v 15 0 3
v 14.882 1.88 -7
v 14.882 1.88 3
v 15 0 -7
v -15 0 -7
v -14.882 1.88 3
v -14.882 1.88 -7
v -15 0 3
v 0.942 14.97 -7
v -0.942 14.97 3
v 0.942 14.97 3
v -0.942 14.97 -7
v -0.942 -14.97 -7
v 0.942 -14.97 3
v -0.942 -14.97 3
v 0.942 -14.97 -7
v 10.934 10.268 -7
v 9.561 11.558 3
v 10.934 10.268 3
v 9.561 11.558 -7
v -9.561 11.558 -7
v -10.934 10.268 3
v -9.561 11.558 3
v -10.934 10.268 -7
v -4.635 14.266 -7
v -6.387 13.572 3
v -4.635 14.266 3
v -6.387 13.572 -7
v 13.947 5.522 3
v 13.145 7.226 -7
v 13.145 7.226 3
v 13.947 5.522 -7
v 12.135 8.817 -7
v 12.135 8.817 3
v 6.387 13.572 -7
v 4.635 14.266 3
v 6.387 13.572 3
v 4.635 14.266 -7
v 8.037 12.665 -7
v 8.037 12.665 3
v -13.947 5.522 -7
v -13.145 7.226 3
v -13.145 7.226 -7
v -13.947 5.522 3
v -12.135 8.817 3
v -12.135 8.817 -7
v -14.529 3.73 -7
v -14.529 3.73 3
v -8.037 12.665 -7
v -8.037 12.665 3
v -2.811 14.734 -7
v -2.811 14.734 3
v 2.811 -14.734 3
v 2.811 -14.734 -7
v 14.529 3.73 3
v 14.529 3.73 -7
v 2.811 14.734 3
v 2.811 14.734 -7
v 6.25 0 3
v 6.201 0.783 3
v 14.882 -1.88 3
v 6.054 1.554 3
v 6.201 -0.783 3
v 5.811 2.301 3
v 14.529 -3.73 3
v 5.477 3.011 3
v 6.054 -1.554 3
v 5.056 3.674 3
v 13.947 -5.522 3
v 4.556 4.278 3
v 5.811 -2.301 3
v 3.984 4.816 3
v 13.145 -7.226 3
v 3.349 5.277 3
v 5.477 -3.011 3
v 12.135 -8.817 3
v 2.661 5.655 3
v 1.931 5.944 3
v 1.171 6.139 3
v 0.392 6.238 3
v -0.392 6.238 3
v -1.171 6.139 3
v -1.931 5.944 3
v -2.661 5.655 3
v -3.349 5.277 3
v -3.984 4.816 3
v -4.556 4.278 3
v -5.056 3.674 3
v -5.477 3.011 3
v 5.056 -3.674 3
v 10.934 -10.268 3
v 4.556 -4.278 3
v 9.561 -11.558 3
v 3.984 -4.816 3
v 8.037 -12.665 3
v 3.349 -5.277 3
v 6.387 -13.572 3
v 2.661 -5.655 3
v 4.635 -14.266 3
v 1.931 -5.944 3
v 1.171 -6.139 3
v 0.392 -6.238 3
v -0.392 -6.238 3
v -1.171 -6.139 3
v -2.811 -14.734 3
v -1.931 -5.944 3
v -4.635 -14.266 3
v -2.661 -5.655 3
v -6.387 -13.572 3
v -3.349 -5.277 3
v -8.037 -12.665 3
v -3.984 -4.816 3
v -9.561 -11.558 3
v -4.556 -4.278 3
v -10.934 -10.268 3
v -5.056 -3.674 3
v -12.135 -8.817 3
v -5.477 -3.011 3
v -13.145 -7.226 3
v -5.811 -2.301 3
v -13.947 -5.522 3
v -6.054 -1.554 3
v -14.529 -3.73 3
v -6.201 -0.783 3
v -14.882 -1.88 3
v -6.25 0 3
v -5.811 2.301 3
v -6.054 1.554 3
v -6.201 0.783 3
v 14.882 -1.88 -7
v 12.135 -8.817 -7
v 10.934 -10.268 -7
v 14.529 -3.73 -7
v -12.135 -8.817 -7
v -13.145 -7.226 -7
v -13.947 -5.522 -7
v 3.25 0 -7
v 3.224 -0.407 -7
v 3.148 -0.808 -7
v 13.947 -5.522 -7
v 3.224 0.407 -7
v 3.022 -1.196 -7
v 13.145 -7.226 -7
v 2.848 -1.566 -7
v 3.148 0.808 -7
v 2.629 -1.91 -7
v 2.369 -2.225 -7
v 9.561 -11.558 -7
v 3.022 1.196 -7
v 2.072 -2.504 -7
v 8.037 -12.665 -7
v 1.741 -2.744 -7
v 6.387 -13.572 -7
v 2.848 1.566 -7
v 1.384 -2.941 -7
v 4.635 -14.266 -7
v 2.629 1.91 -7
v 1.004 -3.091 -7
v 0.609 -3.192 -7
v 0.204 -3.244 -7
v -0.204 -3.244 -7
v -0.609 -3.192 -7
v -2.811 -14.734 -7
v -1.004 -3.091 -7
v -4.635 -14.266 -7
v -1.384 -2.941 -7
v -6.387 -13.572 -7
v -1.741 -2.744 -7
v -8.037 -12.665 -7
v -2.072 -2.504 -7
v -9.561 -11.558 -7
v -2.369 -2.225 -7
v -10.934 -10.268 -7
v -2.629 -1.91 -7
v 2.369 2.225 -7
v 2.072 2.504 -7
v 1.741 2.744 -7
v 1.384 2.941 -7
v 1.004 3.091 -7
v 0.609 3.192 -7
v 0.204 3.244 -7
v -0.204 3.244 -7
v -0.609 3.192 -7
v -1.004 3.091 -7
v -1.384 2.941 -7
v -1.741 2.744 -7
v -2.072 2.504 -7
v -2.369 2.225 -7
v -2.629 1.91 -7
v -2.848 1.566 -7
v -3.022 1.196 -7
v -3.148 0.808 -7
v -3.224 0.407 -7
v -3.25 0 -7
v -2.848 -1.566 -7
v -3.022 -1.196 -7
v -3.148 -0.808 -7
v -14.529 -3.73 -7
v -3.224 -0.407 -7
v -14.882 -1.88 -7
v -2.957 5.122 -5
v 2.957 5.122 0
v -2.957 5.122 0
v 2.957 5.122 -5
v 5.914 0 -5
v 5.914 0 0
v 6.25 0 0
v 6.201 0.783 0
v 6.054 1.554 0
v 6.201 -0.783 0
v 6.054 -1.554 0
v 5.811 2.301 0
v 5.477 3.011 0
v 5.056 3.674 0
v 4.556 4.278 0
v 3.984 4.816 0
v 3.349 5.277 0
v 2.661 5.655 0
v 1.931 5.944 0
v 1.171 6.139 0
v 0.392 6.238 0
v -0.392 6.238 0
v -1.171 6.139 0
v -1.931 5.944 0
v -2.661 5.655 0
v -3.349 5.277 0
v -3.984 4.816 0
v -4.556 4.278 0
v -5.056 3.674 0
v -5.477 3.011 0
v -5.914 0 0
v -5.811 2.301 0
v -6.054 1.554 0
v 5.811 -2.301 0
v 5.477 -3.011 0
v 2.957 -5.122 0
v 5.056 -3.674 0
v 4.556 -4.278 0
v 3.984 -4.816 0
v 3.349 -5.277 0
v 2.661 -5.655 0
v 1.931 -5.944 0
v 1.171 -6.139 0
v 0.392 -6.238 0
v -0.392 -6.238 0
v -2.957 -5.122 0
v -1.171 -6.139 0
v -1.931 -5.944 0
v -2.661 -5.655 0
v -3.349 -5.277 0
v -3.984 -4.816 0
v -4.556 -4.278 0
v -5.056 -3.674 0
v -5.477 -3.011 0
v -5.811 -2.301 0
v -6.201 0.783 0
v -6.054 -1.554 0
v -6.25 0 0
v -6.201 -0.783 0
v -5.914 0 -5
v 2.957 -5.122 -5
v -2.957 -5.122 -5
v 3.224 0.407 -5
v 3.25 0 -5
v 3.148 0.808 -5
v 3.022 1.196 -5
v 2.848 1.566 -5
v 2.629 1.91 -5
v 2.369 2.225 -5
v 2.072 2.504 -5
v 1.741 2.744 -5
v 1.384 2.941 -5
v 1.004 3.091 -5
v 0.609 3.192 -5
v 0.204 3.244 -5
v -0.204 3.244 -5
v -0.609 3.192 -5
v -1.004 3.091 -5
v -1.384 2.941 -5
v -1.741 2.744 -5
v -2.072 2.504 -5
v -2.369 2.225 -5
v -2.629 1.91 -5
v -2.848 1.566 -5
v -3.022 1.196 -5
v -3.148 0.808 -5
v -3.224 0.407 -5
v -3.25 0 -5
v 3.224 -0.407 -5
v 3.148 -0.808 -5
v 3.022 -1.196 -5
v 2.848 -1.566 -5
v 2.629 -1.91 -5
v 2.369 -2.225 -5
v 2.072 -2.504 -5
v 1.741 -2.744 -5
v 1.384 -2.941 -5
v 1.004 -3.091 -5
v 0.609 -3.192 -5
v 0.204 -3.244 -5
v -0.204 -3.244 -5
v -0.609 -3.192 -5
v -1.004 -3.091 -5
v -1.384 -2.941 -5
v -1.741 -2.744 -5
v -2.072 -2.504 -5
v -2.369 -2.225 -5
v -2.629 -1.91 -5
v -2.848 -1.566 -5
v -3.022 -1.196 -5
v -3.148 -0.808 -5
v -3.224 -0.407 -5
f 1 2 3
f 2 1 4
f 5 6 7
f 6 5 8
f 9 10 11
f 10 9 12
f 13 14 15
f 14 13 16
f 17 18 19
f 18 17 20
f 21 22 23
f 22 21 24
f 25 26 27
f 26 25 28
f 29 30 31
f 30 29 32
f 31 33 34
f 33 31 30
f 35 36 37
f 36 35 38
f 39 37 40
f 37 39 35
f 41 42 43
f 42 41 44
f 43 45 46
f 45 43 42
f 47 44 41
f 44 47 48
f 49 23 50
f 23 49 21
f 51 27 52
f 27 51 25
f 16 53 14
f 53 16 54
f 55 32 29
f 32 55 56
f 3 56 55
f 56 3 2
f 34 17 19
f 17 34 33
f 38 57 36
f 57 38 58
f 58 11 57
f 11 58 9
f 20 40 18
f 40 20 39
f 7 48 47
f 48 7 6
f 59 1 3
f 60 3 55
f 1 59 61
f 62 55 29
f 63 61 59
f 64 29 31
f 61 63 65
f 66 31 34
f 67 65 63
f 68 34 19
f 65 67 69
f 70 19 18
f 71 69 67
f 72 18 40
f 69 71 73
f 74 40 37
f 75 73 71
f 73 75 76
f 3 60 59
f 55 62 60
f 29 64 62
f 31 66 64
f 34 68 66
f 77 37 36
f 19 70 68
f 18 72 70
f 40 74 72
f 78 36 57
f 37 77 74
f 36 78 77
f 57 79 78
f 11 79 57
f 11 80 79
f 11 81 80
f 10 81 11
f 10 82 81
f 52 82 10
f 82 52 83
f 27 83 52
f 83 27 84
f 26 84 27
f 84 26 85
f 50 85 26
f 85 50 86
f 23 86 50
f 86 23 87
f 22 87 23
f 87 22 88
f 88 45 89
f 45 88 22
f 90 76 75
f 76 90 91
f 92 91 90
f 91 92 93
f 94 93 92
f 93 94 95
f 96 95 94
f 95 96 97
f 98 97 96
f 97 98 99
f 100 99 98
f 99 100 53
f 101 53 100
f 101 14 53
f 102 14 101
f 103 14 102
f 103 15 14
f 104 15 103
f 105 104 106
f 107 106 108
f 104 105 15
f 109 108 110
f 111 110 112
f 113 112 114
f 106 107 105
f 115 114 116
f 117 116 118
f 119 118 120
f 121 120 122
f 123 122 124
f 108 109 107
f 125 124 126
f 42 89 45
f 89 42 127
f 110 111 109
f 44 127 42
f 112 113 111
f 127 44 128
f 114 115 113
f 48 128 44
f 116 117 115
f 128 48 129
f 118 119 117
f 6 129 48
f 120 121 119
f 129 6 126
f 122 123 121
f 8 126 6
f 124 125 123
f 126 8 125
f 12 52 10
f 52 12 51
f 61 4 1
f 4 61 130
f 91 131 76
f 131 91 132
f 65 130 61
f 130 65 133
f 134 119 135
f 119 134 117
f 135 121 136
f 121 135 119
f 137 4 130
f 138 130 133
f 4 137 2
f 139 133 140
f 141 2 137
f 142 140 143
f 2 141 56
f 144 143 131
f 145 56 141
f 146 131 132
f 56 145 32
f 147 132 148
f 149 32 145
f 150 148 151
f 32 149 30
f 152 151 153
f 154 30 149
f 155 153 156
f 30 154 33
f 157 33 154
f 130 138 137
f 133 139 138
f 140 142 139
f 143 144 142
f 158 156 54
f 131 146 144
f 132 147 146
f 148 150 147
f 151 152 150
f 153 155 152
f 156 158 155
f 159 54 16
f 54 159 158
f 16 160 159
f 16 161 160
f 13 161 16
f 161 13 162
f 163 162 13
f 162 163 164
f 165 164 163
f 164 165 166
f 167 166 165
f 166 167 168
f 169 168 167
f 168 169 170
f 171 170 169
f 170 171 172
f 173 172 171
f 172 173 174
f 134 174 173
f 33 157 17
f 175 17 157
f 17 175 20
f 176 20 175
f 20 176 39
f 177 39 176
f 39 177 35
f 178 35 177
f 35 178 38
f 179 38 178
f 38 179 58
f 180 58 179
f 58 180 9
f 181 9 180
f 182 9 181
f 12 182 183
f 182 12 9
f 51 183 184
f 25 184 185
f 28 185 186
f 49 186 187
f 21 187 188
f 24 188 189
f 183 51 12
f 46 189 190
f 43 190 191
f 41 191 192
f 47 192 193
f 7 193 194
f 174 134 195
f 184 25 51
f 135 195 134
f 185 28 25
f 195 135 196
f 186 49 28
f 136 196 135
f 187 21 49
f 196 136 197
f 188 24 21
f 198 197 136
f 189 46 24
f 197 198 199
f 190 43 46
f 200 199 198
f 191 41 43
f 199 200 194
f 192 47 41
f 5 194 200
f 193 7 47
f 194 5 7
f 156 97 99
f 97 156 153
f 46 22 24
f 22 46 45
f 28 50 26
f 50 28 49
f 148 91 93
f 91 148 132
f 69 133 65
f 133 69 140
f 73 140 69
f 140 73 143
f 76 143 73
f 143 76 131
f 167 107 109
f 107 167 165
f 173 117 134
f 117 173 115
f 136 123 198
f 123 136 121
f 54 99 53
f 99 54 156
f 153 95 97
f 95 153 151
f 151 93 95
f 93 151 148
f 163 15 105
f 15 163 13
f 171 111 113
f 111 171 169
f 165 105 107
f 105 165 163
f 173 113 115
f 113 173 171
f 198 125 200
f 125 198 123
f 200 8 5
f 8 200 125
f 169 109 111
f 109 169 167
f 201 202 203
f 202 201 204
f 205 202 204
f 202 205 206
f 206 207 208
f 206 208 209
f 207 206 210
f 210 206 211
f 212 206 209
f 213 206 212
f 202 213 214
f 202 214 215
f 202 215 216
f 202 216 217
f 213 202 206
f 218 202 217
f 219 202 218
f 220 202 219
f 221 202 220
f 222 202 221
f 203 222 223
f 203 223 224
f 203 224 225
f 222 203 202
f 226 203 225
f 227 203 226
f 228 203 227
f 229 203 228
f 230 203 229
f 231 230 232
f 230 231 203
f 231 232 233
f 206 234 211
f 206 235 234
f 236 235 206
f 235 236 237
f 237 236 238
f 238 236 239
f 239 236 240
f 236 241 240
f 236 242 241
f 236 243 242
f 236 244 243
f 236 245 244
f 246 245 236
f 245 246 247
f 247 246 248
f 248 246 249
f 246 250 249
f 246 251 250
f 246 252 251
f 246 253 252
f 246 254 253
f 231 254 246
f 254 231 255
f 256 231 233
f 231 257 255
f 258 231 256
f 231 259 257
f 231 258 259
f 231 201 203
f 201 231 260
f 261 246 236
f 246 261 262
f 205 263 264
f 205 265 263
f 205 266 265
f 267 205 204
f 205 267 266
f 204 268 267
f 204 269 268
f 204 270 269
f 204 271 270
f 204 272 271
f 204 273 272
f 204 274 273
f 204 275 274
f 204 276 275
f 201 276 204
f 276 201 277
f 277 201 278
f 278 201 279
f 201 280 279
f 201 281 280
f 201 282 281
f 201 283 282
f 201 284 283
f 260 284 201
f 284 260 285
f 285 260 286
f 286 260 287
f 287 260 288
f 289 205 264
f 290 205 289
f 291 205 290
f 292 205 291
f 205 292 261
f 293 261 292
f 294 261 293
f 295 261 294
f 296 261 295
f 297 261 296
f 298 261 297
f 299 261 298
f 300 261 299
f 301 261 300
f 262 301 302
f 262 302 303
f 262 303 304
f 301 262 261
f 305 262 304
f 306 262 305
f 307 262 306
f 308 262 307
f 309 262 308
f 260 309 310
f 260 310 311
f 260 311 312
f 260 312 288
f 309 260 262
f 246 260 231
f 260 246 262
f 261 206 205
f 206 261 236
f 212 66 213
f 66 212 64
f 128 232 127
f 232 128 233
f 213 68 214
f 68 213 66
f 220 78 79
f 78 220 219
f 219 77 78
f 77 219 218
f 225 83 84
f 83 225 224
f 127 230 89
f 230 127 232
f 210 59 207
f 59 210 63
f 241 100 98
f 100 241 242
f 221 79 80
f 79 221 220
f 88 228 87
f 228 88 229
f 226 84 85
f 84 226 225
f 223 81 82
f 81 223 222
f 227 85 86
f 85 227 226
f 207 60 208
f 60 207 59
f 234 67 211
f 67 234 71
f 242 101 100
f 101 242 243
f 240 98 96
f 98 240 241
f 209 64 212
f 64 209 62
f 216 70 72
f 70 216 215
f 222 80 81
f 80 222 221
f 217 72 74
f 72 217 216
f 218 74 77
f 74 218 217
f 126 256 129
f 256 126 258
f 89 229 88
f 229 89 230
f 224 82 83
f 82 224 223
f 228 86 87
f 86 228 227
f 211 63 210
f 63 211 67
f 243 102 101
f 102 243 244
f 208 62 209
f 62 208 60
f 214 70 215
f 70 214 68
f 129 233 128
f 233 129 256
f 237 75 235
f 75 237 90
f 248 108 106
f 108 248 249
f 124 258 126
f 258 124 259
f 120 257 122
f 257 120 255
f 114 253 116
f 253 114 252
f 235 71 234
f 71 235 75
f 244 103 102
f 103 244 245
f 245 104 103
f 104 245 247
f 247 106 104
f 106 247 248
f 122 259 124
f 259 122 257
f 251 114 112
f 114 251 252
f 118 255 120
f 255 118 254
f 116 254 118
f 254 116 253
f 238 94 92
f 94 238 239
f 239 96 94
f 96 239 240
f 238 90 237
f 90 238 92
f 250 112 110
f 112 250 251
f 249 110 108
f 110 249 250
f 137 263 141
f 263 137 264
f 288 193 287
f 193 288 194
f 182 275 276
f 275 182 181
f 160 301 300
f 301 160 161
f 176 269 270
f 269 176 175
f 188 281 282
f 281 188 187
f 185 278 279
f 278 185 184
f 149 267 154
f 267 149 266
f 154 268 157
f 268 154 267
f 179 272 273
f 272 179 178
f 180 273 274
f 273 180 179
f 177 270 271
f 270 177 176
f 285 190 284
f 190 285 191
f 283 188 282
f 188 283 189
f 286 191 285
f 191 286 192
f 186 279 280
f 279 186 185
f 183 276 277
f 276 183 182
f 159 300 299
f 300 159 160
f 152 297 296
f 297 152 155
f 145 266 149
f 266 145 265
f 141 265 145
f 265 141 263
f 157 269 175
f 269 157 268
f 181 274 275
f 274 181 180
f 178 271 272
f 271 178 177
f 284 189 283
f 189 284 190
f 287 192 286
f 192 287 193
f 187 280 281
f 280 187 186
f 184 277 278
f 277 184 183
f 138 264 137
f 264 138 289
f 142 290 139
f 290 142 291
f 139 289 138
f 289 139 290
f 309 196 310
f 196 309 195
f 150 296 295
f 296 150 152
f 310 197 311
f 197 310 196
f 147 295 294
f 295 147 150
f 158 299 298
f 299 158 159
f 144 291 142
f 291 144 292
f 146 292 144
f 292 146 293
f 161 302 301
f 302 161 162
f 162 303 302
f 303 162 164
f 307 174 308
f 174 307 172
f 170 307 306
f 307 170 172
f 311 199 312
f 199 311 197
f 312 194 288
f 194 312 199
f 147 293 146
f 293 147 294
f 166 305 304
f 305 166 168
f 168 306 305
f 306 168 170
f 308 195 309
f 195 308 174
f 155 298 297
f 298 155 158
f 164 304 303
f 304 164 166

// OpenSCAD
$fn = 50;

difference() {
	union() {
		translate(v = [0, 0, -7.0]) {
			cylinder(h = 10.0, r = 15.0);
		}
		#translate(v = [0, 0, -8.5]) {
			cylinder(h = 8.5, r = 2.875);
		}
	}
	union() {
		translate(v = [0, 0, 0]) {
			rotate(a = [0, 0, 0]) {
				difference() {
					union() {
						translate(v = [0, 0, -5]) {
							linear_extrude(height = 5) {
								polygon(points = [[5.914249999999999, 0.0], [2.957125, 5.1218907443321156], [-2.9571249999999982, 5.1218907443321156], [-5.914249999999999, 7.242867331857232e-16], [-2.9571250000000022, -5.121890744332115], [2.9571249999999956, -5.121890744332118]]);
							}
						}
					}
					union();
				}
			}
		}
		#cylinder(h = 3, r = 6.25);
		#translate(v = [0, 0, -100.0]) {
			cylinder(h = 200, r = 3.25);
		}
	}
}
